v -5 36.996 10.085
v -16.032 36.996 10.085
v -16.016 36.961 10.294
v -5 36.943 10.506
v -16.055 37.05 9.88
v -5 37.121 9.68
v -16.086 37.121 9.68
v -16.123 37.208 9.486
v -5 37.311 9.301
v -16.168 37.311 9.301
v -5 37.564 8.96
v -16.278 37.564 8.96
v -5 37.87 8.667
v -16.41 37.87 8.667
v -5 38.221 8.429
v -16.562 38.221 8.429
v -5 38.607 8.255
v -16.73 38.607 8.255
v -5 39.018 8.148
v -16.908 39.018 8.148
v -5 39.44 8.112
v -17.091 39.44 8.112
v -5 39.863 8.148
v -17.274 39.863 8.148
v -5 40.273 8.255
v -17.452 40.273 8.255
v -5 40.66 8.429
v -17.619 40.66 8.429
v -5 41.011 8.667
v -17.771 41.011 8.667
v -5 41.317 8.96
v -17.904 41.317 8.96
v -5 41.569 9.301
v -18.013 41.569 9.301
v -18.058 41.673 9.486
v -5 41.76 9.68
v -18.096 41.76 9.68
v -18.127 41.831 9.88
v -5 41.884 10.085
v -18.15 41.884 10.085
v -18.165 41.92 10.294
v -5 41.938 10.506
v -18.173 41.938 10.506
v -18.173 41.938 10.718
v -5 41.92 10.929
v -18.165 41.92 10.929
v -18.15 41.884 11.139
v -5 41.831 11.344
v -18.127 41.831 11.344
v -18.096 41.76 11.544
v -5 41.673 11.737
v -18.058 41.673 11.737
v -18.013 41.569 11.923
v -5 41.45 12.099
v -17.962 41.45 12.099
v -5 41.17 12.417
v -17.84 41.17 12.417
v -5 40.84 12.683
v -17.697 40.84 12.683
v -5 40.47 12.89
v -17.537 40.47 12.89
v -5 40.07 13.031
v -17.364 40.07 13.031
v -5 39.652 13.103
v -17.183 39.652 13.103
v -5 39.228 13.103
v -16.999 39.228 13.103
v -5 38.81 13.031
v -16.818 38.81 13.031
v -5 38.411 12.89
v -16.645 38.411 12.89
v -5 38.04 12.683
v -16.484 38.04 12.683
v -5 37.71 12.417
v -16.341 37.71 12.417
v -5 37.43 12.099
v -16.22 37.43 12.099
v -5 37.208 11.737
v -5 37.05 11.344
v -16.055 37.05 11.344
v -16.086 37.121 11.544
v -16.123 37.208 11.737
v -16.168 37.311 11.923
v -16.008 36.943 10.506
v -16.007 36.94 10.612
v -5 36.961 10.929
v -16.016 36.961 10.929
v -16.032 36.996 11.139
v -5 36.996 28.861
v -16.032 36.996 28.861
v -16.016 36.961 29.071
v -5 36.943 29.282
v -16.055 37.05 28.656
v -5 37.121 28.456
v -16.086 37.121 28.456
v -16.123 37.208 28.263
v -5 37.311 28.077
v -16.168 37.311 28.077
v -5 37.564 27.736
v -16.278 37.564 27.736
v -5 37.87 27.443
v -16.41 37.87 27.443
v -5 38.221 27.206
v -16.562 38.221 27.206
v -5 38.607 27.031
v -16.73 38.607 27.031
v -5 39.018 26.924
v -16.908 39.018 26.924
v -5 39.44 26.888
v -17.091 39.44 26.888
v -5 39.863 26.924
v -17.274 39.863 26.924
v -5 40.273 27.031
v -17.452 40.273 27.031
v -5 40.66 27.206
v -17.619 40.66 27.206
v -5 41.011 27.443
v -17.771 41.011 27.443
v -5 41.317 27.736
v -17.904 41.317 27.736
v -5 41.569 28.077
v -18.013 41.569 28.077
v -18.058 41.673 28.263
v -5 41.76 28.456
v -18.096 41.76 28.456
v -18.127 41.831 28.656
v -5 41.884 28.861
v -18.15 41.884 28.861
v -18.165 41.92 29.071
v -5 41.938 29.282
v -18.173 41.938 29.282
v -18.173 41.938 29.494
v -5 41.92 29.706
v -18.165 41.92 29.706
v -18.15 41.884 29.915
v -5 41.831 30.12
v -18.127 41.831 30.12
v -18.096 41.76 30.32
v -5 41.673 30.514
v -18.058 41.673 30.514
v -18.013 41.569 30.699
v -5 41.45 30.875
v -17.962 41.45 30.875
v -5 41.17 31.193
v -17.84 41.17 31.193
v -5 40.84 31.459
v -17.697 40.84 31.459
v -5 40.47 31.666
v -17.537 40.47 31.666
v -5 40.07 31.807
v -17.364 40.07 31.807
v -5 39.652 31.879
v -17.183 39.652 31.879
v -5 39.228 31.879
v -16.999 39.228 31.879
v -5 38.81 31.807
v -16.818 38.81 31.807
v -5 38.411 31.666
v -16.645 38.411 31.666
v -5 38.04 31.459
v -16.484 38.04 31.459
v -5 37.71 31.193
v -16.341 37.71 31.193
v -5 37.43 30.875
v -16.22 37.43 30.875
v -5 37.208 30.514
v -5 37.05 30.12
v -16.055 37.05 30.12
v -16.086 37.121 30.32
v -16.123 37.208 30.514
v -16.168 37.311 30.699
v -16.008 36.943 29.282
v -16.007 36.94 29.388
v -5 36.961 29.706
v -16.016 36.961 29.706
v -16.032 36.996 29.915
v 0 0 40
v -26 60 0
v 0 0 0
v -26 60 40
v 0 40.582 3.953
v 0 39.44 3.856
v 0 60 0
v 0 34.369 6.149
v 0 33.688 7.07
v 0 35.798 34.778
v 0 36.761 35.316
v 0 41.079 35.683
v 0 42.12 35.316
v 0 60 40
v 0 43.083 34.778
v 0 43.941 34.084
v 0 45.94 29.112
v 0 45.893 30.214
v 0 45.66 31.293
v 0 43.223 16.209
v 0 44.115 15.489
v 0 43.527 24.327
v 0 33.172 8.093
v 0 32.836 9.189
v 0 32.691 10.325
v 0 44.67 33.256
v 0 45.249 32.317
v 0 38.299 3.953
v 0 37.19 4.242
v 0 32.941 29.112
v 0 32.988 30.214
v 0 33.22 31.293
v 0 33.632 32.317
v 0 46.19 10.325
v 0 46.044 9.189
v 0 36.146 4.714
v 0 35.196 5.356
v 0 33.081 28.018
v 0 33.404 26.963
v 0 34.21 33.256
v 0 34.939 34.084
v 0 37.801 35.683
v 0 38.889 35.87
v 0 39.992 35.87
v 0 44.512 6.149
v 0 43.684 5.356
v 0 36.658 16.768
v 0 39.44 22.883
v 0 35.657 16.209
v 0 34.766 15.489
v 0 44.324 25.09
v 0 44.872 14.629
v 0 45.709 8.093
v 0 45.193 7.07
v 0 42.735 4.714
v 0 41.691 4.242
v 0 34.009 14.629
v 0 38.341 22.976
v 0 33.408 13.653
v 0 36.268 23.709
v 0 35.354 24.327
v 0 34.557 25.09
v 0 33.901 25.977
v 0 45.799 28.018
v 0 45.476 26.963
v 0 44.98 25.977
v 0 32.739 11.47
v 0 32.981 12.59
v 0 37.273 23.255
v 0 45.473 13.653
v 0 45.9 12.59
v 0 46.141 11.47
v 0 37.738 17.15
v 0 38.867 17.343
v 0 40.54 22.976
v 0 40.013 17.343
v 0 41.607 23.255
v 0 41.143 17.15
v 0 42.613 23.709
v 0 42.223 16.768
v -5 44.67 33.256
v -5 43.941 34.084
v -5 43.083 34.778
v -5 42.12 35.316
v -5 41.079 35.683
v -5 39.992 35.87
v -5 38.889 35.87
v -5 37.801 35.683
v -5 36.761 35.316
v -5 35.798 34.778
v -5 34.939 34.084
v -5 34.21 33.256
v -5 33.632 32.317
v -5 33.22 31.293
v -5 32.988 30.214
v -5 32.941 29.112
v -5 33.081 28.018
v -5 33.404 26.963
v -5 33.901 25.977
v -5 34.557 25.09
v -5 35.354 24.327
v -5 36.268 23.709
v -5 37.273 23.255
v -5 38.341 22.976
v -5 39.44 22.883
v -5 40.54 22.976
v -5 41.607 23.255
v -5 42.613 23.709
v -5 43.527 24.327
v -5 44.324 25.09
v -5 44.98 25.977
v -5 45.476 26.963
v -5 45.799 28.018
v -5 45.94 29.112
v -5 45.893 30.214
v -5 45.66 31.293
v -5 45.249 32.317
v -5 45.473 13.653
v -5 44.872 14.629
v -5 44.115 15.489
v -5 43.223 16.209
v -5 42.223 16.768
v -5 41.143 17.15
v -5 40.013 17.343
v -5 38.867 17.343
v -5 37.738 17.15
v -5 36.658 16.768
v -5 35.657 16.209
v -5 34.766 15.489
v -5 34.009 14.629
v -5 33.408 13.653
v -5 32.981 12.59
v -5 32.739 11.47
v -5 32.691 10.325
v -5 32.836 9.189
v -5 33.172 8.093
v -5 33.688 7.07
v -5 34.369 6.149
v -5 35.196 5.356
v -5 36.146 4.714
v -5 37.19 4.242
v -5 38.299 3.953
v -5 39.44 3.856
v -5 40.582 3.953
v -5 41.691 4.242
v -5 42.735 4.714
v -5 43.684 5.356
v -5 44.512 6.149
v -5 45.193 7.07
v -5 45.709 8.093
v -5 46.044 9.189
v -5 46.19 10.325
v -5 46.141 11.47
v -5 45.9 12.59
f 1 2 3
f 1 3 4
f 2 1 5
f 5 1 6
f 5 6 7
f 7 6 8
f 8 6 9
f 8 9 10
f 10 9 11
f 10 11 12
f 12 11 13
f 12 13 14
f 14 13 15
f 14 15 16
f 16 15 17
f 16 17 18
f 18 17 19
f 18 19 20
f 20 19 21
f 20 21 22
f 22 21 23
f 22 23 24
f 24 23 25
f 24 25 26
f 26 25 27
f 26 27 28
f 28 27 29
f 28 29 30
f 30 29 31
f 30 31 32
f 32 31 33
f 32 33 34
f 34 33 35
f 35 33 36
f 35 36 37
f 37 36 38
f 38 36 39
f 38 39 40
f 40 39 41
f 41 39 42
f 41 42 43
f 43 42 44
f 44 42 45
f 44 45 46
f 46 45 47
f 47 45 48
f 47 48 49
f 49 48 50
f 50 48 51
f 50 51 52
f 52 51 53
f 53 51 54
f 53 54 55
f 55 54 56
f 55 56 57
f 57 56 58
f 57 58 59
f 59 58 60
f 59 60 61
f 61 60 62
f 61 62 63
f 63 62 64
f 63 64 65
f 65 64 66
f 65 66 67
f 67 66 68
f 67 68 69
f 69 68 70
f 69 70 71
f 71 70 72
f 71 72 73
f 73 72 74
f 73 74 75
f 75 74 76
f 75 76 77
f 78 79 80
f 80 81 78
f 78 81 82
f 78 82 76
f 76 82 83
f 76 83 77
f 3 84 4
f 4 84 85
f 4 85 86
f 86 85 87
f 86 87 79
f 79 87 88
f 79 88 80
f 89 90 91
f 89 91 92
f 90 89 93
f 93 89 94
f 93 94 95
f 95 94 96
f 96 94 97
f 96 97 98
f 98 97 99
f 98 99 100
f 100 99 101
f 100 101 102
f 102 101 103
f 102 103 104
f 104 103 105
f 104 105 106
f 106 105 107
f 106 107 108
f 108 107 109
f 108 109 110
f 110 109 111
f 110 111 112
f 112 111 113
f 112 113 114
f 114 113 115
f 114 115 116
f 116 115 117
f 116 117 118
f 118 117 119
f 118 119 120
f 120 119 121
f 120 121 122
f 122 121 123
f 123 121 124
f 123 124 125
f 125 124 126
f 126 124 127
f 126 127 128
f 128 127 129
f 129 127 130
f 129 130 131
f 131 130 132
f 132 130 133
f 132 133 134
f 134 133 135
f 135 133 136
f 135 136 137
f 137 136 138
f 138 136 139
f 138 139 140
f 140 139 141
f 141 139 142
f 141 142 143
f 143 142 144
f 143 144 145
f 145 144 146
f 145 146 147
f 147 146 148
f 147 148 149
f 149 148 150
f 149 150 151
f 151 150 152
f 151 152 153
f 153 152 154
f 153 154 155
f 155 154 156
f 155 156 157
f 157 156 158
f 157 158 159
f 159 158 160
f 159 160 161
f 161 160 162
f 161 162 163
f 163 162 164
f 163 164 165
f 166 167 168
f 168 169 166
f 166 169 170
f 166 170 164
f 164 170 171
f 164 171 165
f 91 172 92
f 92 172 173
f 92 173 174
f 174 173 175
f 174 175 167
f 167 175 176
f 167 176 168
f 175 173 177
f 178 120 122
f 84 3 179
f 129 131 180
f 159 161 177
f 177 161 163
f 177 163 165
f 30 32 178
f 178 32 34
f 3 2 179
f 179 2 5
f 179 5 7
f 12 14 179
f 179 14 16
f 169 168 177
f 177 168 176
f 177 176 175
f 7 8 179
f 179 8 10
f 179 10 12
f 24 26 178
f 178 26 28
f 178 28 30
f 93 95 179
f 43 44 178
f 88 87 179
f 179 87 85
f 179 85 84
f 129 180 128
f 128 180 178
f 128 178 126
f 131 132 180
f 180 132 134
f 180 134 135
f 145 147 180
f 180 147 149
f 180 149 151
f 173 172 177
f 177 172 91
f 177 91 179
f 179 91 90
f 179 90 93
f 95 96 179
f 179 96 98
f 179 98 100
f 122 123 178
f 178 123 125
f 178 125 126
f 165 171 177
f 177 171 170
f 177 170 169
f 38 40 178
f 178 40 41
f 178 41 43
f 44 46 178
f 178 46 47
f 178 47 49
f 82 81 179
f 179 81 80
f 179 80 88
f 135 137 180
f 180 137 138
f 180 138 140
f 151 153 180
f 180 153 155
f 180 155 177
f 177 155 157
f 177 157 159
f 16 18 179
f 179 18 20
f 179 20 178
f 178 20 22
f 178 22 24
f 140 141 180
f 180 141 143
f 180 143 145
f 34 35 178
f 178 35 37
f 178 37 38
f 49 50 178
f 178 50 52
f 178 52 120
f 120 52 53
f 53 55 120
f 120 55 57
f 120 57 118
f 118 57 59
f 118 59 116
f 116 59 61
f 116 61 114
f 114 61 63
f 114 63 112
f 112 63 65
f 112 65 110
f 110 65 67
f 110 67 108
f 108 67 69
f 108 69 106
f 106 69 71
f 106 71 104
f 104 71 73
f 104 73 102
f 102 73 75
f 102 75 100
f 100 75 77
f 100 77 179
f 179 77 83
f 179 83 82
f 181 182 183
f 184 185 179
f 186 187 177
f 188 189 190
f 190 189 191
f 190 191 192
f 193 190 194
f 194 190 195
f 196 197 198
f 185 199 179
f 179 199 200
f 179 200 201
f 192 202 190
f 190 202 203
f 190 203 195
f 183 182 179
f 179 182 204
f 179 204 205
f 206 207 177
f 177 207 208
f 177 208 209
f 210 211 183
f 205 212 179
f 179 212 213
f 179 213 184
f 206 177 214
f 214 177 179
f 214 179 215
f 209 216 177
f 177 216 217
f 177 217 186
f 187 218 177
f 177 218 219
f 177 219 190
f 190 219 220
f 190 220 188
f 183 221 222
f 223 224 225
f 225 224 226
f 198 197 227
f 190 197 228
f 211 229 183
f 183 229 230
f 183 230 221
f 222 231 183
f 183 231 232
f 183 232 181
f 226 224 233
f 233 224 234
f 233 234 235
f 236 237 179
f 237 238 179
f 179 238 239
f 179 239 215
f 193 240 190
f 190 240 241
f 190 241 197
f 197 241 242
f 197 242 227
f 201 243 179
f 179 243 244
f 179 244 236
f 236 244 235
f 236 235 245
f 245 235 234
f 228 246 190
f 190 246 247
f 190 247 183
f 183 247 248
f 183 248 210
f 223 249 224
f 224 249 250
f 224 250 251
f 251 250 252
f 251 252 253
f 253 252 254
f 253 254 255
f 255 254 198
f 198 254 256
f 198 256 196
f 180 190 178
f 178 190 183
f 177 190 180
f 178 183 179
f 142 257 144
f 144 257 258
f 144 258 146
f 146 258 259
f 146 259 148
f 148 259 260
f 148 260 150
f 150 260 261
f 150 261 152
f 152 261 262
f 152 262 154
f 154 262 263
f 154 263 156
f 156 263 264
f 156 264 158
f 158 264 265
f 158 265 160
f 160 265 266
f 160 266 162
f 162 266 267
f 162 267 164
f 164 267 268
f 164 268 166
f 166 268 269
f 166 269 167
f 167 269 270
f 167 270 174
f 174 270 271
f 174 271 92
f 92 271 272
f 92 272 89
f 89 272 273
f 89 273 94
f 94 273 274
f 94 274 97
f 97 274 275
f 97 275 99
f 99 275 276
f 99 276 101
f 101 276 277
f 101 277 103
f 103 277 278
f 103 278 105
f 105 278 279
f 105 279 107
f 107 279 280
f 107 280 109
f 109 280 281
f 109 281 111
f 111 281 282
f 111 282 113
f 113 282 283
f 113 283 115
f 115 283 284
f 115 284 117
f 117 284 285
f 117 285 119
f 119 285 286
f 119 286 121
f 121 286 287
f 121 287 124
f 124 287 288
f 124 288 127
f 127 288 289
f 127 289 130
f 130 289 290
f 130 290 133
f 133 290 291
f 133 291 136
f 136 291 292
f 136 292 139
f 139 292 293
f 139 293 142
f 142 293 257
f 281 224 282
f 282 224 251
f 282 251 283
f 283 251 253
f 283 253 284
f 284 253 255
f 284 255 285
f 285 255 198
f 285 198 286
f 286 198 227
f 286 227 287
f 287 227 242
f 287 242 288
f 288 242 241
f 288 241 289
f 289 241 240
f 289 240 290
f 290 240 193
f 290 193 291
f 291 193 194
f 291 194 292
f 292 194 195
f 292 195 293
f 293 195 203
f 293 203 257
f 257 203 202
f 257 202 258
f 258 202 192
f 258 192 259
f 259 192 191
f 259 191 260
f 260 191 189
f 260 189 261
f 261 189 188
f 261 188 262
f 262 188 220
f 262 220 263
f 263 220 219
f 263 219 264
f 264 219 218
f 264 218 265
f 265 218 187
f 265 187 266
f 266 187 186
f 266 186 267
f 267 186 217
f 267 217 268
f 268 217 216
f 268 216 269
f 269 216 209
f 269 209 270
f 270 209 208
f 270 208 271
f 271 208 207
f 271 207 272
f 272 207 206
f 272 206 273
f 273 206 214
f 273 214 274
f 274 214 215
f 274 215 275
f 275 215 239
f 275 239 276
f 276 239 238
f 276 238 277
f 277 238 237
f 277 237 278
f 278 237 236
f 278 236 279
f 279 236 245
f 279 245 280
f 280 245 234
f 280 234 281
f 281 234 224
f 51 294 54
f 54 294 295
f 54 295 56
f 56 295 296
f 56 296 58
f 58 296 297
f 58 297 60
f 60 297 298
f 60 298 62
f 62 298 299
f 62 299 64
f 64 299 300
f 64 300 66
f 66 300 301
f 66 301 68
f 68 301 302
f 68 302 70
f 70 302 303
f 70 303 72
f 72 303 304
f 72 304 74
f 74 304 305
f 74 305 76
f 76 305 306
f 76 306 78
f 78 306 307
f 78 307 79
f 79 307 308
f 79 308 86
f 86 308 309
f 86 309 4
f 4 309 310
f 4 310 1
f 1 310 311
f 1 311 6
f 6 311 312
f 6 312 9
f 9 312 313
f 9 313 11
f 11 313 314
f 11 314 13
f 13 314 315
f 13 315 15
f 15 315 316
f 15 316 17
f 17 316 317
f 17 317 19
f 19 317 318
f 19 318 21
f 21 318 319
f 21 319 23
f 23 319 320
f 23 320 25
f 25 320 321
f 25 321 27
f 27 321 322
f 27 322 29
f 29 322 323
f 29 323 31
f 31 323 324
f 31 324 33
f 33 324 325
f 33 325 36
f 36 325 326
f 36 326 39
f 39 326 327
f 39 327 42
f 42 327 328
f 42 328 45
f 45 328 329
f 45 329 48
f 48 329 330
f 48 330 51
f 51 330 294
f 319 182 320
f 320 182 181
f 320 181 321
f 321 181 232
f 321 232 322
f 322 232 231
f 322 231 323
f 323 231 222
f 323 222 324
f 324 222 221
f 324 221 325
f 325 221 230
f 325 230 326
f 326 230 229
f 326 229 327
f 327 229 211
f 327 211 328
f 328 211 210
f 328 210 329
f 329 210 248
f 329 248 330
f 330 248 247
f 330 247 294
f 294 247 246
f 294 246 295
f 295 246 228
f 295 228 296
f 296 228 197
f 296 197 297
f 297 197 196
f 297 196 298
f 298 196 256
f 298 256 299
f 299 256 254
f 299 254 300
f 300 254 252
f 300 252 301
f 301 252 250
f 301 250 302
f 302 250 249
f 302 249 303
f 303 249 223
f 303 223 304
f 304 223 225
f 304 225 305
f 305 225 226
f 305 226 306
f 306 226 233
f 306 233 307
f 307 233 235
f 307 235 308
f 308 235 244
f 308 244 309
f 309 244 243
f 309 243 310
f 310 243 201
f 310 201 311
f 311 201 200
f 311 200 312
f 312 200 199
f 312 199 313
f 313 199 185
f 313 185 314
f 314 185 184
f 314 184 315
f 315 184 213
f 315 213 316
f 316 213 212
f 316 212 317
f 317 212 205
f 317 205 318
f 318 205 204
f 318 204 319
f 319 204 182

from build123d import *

# Parameters (mm, degrees)
BOSS_EXTRU_1_DEPTH      = 40
ESQUISSE4_R             = 2.5
ENL_V_MAT_EXTRU_2_DEPTH = 80
ESQUISSE6_R             = 6.505119939
ESQUISSE6_R_2           = 6.755806102
ENL_V_MAT_EXTRU_3_DEPTH = 5


with BuildPart() as part:
    # Esquisse2 → Boss.-Extru.1 (new body)
    with BuildSketch(Plane.XY):
        Polygon((0, 0), (0, 60), (-26, 60), align=None)
    extrude(amount=BOSS_EXTRU_1_DEPTH)

    # Esquisse4 → Enlèv. mat.-Extru.2 (cut)
    with BuildSketch(Plane(origin=(0, 0, 0), x_dir=(0, 0, -1), z_dir=(1, 0, 0))):
        with Locations((-29.388047062, 39.440308957)):
            Circle(ESQUISSE4_R)
        with Locations((-10.611952938, 39.440308957)):
            Circle(ESQUISSE4_R)
    extrude(amount=-ENL_V_MAT_EXTRU_2_DEPTH, mode=Mode.SUBTRACT)

    # Esquisse6 → Enlèv. mat.-Extru.3 (cut)
    with BuildSketch(Plane(origin=(0, 0, 0), x_dir=(0, 0, -1), z_dir=(1, 0, 0))):
        with Locations((-29.388047062, 39.440308957)):
            Circle(ESQUISSE6_R)
        with Locations((-10.611952938, 39.440308957)):
            Circle(ESQUISSE6_R_2)
    extrude(amount=-ENL_V_MAT_EXTRU_3_DEPTH, mode=Mode.SUBTRACT)


solid = part.part
